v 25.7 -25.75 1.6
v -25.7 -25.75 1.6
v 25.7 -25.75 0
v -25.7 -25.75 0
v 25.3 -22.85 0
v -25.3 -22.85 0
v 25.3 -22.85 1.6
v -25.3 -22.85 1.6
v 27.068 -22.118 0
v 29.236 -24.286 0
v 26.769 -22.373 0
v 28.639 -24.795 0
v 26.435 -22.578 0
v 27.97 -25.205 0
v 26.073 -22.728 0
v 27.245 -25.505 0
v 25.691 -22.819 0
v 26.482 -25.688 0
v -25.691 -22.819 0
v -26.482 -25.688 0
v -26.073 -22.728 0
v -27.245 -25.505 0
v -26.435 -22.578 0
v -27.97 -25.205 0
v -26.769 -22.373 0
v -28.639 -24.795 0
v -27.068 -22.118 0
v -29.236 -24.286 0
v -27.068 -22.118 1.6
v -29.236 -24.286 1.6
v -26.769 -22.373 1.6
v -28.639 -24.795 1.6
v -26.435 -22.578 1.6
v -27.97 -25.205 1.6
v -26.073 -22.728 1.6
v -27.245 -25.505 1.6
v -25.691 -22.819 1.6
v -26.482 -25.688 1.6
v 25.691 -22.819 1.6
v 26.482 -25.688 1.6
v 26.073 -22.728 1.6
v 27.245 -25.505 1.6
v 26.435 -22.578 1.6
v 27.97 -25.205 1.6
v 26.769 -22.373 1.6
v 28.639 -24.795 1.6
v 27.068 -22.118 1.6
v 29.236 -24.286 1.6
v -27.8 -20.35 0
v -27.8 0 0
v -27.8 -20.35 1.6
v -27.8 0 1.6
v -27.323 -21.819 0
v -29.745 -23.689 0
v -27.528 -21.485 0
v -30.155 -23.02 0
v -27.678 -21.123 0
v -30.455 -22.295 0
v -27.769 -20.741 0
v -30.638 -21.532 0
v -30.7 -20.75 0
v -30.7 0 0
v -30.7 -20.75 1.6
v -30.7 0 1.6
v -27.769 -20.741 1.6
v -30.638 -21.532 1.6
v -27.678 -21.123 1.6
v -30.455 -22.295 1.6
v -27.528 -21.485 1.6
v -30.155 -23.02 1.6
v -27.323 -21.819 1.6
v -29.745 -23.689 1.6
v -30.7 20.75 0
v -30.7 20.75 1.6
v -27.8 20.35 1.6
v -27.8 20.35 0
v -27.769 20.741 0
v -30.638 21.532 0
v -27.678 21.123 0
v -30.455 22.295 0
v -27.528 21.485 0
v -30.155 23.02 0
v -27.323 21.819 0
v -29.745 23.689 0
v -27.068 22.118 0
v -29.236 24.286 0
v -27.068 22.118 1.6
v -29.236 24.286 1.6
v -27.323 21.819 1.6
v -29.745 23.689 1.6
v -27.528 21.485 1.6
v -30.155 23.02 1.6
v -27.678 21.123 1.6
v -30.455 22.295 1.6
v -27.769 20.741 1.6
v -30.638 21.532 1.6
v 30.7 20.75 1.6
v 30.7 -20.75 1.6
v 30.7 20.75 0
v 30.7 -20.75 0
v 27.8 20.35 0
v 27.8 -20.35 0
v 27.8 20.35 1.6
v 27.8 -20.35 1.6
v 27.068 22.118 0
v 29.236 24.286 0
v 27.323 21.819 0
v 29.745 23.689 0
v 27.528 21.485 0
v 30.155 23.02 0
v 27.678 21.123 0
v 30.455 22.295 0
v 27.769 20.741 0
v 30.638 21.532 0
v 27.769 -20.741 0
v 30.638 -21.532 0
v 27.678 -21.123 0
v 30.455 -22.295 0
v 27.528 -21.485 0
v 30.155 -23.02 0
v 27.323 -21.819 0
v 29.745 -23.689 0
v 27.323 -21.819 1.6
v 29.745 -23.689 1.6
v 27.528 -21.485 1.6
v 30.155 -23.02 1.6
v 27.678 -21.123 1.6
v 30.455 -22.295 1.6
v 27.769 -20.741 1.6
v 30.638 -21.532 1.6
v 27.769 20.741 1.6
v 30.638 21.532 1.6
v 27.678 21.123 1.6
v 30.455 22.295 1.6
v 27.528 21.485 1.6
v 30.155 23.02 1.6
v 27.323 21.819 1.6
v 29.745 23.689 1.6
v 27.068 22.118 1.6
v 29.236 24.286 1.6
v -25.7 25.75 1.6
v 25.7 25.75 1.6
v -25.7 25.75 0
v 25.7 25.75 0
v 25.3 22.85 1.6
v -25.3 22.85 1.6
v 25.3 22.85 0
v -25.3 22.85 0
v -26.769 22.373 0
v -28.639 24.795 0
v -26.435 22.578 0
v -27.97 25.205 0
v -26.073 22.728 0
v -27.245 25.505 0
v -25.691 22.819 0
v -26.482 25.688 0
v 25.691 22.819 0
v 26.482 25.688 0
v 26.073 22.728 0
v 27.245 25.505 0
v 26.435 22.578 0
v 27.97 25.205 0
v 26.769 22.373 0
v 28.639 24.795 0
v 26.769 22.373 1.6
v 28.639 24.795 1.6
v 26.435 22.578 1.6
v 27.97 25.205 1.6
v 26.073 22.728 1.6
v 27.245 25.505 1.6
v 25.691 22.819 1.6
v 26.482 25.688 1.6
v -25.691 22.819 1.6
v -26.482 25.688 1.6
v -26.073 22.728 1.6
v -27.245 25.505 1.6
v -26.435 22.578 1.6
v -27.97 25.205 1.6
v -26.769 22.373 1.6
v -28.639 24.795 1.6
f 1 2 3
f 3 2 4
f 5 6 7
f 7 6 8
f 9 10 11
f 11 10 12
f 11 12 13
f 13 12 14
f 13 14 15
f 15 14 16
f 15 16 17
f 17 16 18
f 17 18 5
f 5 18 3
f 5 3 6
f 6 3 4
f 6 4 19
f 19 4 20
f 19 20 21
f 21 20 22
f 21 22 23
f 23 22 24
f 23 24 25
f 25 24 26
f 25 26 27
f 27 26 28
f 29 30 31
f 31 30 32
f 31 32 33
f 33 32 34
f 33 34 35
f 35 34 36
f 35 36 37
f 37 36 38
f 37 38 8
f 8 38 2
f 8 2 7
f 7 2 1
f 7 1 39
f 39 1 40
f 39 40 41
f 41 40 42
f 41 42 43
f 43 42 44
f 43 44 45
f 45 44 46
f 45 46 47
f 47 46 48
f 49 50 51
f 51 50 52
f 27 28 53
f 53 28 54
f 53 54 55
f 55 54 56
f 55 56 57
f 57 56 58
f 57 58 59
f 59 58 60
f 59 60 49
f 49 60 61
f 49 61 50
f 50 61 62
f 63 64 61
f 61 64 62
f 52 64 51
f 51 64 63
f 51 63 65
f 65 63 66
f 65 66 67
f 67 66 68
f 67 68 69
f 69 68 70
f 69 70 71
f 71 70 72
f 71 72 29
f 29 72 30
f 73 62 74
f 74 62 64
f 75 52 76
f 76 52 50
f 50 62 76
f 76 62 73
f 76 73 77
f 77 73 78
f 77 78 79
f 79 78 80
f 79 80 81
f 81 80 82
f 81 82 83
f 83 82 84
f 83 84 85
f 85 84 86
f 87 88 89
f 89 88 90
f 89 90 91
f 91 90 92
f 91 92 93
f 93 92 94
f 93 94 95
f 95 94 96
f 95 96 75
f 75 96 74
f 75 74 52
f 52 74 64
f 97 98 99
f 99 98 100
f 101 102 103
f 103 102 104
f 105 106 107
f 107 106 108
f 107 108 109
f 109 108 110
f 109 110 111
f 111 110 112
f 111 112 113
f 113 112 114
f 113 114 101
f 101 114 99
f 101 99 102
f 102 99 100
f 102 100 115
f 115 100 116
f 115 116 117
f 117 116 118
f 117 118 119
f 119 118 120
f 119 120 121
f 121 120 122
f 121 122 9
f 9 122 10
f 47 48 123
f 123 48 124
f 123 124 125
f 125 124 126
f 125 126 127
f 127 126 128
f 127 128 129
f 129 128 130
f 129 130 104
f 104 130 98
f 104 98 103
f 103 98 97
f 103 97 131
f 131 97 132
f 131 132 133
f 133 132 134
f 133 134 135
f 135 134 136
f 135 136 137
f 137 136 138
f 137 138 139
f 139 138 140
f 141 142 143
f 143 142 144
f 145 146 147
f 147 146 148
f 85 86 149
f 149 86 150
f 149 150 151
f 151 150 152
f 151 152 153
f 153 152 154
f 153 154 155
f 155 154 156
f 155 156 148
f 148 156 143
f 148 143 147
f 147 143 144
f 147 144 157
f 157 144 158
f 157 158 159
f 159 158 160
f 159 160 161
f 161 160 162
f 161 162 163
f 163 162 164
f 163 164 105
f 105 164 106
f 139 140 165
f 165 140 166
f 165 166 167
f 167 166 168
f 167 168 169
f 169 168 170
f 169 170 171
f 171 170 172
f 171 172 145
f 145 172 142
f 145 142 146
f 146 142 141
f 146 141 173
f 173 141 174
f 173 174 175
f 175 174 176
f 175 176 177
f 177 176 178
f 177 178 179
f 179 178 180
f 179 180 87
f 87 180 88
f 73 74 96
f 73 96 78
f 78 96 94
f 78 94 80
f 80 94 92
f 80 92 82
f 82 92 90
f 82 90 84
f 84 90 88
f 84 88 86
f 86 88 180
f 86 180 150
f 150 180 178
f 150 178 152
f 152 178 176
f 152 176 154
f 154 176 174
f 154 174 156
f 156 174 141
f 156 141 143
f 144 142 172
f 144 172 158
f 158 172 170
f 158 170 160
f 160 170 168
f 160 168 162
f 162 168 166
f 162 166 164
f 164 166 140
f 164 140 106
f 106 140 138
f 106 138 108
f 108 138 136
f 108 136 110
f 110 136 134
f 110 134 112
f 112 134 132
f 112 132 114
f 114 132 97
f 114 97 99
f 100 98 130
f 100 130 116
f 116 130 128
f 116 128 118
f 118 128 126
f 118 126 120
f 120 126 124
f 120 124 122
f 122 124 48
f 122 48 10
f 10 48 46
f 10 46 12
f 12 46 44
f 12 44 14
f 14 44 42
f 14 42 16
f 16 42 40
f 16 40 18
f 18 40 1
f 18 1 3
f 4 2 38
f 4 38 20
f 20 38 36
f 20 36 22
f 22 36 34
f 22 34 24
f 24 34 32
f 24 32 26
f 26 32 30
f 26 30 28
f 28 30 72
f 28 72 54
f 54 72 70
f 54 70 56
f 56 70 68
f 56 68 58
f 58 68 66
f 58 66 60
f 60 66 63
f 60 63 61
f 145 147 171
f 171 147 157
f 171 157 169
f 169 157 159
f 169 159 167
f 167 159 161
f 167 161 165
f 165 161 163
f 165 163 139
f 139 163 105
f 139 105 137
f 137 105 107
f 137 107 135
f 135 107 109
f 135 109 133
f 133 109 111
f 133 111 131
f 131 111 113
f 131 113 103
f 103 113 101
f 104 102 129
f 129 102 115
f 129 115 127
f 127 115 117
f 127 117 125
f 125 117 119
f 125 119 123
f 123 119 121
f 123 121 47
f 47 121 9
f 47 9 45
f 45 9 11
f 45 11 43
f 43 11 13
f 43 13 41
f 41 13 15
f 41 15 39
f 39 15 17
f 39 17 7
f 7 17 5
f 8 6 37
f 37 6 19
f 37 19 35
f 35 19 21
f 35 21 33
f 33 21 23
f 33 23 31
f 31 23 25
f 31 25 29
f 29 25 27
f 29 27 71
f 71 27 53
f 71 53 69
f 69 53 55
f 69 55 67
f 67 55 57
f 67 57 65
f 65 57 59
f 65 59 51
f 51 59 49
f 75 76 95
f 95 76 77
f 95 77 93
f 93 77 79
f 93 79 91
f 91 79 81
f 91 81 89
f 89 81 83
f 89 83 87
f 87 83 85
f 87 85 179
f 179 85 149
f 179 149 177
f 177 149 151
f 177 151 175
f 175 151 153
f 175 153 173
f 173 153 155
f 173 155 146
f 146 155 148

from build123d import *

# Parameters (mm, degrees)
SKETCH2_W = 2.9
SKETCH2_H = 1.6
FILLET1_R = 5
FILLET2_R = 2.5


with BuildPart() as part:
    # Sweep1: sweep along a path in Sketch1
    with BuildLine(Plane.XY) as sweep1_path:
        Line((-30.7, 25.75), (30.7, 25.75))
        Line((30.7, 25.75), (30.7, -25.75))
        Line((30.7, -25.75), (-30.7, -25.75))
        Line((-30.7, -25.75), (-30.7, 25.75))
    # Sketch2 → Sweep1 (sweep)
    with BuildSketch(Plane(origin=(0, 0, 0), x_dir=(1, 0, 0), z_dir=(0, 1, 0))):
        with Locations((-29.25, -0.8)):
            Rectangle(SKETCH2_W, SKETCH2_H)
    sweep(path=sweep1_path.line, transition=Transition.RIGHT)

    # Fillet1
    fillet1_edges = [part.edges().sort_by_distance(p)[0] for p in [
        (30.7, -25.75, 0.8),
        (-30.7, -25.75, 0.8),
        (30.7, 25.75, 0.8),
        (-30.7, 25.75, 0.8),
    ]]
    fillet(fillet1_edges, radius=FILLET1_R)

    # Fillet2
    fillet2_edges = [part.edges().sort_by_distance(p)[0] for p in [
        (27.8, -22.85, 0.8),
        (-27.8, -22.85, 0.8),
        (27.8, 22.85, 0.8),
        (-27.8, 22.85, 0.8),
    ]]
    fillet(fillet2_edges, radius=FILLET2_R)


solid = part.part
